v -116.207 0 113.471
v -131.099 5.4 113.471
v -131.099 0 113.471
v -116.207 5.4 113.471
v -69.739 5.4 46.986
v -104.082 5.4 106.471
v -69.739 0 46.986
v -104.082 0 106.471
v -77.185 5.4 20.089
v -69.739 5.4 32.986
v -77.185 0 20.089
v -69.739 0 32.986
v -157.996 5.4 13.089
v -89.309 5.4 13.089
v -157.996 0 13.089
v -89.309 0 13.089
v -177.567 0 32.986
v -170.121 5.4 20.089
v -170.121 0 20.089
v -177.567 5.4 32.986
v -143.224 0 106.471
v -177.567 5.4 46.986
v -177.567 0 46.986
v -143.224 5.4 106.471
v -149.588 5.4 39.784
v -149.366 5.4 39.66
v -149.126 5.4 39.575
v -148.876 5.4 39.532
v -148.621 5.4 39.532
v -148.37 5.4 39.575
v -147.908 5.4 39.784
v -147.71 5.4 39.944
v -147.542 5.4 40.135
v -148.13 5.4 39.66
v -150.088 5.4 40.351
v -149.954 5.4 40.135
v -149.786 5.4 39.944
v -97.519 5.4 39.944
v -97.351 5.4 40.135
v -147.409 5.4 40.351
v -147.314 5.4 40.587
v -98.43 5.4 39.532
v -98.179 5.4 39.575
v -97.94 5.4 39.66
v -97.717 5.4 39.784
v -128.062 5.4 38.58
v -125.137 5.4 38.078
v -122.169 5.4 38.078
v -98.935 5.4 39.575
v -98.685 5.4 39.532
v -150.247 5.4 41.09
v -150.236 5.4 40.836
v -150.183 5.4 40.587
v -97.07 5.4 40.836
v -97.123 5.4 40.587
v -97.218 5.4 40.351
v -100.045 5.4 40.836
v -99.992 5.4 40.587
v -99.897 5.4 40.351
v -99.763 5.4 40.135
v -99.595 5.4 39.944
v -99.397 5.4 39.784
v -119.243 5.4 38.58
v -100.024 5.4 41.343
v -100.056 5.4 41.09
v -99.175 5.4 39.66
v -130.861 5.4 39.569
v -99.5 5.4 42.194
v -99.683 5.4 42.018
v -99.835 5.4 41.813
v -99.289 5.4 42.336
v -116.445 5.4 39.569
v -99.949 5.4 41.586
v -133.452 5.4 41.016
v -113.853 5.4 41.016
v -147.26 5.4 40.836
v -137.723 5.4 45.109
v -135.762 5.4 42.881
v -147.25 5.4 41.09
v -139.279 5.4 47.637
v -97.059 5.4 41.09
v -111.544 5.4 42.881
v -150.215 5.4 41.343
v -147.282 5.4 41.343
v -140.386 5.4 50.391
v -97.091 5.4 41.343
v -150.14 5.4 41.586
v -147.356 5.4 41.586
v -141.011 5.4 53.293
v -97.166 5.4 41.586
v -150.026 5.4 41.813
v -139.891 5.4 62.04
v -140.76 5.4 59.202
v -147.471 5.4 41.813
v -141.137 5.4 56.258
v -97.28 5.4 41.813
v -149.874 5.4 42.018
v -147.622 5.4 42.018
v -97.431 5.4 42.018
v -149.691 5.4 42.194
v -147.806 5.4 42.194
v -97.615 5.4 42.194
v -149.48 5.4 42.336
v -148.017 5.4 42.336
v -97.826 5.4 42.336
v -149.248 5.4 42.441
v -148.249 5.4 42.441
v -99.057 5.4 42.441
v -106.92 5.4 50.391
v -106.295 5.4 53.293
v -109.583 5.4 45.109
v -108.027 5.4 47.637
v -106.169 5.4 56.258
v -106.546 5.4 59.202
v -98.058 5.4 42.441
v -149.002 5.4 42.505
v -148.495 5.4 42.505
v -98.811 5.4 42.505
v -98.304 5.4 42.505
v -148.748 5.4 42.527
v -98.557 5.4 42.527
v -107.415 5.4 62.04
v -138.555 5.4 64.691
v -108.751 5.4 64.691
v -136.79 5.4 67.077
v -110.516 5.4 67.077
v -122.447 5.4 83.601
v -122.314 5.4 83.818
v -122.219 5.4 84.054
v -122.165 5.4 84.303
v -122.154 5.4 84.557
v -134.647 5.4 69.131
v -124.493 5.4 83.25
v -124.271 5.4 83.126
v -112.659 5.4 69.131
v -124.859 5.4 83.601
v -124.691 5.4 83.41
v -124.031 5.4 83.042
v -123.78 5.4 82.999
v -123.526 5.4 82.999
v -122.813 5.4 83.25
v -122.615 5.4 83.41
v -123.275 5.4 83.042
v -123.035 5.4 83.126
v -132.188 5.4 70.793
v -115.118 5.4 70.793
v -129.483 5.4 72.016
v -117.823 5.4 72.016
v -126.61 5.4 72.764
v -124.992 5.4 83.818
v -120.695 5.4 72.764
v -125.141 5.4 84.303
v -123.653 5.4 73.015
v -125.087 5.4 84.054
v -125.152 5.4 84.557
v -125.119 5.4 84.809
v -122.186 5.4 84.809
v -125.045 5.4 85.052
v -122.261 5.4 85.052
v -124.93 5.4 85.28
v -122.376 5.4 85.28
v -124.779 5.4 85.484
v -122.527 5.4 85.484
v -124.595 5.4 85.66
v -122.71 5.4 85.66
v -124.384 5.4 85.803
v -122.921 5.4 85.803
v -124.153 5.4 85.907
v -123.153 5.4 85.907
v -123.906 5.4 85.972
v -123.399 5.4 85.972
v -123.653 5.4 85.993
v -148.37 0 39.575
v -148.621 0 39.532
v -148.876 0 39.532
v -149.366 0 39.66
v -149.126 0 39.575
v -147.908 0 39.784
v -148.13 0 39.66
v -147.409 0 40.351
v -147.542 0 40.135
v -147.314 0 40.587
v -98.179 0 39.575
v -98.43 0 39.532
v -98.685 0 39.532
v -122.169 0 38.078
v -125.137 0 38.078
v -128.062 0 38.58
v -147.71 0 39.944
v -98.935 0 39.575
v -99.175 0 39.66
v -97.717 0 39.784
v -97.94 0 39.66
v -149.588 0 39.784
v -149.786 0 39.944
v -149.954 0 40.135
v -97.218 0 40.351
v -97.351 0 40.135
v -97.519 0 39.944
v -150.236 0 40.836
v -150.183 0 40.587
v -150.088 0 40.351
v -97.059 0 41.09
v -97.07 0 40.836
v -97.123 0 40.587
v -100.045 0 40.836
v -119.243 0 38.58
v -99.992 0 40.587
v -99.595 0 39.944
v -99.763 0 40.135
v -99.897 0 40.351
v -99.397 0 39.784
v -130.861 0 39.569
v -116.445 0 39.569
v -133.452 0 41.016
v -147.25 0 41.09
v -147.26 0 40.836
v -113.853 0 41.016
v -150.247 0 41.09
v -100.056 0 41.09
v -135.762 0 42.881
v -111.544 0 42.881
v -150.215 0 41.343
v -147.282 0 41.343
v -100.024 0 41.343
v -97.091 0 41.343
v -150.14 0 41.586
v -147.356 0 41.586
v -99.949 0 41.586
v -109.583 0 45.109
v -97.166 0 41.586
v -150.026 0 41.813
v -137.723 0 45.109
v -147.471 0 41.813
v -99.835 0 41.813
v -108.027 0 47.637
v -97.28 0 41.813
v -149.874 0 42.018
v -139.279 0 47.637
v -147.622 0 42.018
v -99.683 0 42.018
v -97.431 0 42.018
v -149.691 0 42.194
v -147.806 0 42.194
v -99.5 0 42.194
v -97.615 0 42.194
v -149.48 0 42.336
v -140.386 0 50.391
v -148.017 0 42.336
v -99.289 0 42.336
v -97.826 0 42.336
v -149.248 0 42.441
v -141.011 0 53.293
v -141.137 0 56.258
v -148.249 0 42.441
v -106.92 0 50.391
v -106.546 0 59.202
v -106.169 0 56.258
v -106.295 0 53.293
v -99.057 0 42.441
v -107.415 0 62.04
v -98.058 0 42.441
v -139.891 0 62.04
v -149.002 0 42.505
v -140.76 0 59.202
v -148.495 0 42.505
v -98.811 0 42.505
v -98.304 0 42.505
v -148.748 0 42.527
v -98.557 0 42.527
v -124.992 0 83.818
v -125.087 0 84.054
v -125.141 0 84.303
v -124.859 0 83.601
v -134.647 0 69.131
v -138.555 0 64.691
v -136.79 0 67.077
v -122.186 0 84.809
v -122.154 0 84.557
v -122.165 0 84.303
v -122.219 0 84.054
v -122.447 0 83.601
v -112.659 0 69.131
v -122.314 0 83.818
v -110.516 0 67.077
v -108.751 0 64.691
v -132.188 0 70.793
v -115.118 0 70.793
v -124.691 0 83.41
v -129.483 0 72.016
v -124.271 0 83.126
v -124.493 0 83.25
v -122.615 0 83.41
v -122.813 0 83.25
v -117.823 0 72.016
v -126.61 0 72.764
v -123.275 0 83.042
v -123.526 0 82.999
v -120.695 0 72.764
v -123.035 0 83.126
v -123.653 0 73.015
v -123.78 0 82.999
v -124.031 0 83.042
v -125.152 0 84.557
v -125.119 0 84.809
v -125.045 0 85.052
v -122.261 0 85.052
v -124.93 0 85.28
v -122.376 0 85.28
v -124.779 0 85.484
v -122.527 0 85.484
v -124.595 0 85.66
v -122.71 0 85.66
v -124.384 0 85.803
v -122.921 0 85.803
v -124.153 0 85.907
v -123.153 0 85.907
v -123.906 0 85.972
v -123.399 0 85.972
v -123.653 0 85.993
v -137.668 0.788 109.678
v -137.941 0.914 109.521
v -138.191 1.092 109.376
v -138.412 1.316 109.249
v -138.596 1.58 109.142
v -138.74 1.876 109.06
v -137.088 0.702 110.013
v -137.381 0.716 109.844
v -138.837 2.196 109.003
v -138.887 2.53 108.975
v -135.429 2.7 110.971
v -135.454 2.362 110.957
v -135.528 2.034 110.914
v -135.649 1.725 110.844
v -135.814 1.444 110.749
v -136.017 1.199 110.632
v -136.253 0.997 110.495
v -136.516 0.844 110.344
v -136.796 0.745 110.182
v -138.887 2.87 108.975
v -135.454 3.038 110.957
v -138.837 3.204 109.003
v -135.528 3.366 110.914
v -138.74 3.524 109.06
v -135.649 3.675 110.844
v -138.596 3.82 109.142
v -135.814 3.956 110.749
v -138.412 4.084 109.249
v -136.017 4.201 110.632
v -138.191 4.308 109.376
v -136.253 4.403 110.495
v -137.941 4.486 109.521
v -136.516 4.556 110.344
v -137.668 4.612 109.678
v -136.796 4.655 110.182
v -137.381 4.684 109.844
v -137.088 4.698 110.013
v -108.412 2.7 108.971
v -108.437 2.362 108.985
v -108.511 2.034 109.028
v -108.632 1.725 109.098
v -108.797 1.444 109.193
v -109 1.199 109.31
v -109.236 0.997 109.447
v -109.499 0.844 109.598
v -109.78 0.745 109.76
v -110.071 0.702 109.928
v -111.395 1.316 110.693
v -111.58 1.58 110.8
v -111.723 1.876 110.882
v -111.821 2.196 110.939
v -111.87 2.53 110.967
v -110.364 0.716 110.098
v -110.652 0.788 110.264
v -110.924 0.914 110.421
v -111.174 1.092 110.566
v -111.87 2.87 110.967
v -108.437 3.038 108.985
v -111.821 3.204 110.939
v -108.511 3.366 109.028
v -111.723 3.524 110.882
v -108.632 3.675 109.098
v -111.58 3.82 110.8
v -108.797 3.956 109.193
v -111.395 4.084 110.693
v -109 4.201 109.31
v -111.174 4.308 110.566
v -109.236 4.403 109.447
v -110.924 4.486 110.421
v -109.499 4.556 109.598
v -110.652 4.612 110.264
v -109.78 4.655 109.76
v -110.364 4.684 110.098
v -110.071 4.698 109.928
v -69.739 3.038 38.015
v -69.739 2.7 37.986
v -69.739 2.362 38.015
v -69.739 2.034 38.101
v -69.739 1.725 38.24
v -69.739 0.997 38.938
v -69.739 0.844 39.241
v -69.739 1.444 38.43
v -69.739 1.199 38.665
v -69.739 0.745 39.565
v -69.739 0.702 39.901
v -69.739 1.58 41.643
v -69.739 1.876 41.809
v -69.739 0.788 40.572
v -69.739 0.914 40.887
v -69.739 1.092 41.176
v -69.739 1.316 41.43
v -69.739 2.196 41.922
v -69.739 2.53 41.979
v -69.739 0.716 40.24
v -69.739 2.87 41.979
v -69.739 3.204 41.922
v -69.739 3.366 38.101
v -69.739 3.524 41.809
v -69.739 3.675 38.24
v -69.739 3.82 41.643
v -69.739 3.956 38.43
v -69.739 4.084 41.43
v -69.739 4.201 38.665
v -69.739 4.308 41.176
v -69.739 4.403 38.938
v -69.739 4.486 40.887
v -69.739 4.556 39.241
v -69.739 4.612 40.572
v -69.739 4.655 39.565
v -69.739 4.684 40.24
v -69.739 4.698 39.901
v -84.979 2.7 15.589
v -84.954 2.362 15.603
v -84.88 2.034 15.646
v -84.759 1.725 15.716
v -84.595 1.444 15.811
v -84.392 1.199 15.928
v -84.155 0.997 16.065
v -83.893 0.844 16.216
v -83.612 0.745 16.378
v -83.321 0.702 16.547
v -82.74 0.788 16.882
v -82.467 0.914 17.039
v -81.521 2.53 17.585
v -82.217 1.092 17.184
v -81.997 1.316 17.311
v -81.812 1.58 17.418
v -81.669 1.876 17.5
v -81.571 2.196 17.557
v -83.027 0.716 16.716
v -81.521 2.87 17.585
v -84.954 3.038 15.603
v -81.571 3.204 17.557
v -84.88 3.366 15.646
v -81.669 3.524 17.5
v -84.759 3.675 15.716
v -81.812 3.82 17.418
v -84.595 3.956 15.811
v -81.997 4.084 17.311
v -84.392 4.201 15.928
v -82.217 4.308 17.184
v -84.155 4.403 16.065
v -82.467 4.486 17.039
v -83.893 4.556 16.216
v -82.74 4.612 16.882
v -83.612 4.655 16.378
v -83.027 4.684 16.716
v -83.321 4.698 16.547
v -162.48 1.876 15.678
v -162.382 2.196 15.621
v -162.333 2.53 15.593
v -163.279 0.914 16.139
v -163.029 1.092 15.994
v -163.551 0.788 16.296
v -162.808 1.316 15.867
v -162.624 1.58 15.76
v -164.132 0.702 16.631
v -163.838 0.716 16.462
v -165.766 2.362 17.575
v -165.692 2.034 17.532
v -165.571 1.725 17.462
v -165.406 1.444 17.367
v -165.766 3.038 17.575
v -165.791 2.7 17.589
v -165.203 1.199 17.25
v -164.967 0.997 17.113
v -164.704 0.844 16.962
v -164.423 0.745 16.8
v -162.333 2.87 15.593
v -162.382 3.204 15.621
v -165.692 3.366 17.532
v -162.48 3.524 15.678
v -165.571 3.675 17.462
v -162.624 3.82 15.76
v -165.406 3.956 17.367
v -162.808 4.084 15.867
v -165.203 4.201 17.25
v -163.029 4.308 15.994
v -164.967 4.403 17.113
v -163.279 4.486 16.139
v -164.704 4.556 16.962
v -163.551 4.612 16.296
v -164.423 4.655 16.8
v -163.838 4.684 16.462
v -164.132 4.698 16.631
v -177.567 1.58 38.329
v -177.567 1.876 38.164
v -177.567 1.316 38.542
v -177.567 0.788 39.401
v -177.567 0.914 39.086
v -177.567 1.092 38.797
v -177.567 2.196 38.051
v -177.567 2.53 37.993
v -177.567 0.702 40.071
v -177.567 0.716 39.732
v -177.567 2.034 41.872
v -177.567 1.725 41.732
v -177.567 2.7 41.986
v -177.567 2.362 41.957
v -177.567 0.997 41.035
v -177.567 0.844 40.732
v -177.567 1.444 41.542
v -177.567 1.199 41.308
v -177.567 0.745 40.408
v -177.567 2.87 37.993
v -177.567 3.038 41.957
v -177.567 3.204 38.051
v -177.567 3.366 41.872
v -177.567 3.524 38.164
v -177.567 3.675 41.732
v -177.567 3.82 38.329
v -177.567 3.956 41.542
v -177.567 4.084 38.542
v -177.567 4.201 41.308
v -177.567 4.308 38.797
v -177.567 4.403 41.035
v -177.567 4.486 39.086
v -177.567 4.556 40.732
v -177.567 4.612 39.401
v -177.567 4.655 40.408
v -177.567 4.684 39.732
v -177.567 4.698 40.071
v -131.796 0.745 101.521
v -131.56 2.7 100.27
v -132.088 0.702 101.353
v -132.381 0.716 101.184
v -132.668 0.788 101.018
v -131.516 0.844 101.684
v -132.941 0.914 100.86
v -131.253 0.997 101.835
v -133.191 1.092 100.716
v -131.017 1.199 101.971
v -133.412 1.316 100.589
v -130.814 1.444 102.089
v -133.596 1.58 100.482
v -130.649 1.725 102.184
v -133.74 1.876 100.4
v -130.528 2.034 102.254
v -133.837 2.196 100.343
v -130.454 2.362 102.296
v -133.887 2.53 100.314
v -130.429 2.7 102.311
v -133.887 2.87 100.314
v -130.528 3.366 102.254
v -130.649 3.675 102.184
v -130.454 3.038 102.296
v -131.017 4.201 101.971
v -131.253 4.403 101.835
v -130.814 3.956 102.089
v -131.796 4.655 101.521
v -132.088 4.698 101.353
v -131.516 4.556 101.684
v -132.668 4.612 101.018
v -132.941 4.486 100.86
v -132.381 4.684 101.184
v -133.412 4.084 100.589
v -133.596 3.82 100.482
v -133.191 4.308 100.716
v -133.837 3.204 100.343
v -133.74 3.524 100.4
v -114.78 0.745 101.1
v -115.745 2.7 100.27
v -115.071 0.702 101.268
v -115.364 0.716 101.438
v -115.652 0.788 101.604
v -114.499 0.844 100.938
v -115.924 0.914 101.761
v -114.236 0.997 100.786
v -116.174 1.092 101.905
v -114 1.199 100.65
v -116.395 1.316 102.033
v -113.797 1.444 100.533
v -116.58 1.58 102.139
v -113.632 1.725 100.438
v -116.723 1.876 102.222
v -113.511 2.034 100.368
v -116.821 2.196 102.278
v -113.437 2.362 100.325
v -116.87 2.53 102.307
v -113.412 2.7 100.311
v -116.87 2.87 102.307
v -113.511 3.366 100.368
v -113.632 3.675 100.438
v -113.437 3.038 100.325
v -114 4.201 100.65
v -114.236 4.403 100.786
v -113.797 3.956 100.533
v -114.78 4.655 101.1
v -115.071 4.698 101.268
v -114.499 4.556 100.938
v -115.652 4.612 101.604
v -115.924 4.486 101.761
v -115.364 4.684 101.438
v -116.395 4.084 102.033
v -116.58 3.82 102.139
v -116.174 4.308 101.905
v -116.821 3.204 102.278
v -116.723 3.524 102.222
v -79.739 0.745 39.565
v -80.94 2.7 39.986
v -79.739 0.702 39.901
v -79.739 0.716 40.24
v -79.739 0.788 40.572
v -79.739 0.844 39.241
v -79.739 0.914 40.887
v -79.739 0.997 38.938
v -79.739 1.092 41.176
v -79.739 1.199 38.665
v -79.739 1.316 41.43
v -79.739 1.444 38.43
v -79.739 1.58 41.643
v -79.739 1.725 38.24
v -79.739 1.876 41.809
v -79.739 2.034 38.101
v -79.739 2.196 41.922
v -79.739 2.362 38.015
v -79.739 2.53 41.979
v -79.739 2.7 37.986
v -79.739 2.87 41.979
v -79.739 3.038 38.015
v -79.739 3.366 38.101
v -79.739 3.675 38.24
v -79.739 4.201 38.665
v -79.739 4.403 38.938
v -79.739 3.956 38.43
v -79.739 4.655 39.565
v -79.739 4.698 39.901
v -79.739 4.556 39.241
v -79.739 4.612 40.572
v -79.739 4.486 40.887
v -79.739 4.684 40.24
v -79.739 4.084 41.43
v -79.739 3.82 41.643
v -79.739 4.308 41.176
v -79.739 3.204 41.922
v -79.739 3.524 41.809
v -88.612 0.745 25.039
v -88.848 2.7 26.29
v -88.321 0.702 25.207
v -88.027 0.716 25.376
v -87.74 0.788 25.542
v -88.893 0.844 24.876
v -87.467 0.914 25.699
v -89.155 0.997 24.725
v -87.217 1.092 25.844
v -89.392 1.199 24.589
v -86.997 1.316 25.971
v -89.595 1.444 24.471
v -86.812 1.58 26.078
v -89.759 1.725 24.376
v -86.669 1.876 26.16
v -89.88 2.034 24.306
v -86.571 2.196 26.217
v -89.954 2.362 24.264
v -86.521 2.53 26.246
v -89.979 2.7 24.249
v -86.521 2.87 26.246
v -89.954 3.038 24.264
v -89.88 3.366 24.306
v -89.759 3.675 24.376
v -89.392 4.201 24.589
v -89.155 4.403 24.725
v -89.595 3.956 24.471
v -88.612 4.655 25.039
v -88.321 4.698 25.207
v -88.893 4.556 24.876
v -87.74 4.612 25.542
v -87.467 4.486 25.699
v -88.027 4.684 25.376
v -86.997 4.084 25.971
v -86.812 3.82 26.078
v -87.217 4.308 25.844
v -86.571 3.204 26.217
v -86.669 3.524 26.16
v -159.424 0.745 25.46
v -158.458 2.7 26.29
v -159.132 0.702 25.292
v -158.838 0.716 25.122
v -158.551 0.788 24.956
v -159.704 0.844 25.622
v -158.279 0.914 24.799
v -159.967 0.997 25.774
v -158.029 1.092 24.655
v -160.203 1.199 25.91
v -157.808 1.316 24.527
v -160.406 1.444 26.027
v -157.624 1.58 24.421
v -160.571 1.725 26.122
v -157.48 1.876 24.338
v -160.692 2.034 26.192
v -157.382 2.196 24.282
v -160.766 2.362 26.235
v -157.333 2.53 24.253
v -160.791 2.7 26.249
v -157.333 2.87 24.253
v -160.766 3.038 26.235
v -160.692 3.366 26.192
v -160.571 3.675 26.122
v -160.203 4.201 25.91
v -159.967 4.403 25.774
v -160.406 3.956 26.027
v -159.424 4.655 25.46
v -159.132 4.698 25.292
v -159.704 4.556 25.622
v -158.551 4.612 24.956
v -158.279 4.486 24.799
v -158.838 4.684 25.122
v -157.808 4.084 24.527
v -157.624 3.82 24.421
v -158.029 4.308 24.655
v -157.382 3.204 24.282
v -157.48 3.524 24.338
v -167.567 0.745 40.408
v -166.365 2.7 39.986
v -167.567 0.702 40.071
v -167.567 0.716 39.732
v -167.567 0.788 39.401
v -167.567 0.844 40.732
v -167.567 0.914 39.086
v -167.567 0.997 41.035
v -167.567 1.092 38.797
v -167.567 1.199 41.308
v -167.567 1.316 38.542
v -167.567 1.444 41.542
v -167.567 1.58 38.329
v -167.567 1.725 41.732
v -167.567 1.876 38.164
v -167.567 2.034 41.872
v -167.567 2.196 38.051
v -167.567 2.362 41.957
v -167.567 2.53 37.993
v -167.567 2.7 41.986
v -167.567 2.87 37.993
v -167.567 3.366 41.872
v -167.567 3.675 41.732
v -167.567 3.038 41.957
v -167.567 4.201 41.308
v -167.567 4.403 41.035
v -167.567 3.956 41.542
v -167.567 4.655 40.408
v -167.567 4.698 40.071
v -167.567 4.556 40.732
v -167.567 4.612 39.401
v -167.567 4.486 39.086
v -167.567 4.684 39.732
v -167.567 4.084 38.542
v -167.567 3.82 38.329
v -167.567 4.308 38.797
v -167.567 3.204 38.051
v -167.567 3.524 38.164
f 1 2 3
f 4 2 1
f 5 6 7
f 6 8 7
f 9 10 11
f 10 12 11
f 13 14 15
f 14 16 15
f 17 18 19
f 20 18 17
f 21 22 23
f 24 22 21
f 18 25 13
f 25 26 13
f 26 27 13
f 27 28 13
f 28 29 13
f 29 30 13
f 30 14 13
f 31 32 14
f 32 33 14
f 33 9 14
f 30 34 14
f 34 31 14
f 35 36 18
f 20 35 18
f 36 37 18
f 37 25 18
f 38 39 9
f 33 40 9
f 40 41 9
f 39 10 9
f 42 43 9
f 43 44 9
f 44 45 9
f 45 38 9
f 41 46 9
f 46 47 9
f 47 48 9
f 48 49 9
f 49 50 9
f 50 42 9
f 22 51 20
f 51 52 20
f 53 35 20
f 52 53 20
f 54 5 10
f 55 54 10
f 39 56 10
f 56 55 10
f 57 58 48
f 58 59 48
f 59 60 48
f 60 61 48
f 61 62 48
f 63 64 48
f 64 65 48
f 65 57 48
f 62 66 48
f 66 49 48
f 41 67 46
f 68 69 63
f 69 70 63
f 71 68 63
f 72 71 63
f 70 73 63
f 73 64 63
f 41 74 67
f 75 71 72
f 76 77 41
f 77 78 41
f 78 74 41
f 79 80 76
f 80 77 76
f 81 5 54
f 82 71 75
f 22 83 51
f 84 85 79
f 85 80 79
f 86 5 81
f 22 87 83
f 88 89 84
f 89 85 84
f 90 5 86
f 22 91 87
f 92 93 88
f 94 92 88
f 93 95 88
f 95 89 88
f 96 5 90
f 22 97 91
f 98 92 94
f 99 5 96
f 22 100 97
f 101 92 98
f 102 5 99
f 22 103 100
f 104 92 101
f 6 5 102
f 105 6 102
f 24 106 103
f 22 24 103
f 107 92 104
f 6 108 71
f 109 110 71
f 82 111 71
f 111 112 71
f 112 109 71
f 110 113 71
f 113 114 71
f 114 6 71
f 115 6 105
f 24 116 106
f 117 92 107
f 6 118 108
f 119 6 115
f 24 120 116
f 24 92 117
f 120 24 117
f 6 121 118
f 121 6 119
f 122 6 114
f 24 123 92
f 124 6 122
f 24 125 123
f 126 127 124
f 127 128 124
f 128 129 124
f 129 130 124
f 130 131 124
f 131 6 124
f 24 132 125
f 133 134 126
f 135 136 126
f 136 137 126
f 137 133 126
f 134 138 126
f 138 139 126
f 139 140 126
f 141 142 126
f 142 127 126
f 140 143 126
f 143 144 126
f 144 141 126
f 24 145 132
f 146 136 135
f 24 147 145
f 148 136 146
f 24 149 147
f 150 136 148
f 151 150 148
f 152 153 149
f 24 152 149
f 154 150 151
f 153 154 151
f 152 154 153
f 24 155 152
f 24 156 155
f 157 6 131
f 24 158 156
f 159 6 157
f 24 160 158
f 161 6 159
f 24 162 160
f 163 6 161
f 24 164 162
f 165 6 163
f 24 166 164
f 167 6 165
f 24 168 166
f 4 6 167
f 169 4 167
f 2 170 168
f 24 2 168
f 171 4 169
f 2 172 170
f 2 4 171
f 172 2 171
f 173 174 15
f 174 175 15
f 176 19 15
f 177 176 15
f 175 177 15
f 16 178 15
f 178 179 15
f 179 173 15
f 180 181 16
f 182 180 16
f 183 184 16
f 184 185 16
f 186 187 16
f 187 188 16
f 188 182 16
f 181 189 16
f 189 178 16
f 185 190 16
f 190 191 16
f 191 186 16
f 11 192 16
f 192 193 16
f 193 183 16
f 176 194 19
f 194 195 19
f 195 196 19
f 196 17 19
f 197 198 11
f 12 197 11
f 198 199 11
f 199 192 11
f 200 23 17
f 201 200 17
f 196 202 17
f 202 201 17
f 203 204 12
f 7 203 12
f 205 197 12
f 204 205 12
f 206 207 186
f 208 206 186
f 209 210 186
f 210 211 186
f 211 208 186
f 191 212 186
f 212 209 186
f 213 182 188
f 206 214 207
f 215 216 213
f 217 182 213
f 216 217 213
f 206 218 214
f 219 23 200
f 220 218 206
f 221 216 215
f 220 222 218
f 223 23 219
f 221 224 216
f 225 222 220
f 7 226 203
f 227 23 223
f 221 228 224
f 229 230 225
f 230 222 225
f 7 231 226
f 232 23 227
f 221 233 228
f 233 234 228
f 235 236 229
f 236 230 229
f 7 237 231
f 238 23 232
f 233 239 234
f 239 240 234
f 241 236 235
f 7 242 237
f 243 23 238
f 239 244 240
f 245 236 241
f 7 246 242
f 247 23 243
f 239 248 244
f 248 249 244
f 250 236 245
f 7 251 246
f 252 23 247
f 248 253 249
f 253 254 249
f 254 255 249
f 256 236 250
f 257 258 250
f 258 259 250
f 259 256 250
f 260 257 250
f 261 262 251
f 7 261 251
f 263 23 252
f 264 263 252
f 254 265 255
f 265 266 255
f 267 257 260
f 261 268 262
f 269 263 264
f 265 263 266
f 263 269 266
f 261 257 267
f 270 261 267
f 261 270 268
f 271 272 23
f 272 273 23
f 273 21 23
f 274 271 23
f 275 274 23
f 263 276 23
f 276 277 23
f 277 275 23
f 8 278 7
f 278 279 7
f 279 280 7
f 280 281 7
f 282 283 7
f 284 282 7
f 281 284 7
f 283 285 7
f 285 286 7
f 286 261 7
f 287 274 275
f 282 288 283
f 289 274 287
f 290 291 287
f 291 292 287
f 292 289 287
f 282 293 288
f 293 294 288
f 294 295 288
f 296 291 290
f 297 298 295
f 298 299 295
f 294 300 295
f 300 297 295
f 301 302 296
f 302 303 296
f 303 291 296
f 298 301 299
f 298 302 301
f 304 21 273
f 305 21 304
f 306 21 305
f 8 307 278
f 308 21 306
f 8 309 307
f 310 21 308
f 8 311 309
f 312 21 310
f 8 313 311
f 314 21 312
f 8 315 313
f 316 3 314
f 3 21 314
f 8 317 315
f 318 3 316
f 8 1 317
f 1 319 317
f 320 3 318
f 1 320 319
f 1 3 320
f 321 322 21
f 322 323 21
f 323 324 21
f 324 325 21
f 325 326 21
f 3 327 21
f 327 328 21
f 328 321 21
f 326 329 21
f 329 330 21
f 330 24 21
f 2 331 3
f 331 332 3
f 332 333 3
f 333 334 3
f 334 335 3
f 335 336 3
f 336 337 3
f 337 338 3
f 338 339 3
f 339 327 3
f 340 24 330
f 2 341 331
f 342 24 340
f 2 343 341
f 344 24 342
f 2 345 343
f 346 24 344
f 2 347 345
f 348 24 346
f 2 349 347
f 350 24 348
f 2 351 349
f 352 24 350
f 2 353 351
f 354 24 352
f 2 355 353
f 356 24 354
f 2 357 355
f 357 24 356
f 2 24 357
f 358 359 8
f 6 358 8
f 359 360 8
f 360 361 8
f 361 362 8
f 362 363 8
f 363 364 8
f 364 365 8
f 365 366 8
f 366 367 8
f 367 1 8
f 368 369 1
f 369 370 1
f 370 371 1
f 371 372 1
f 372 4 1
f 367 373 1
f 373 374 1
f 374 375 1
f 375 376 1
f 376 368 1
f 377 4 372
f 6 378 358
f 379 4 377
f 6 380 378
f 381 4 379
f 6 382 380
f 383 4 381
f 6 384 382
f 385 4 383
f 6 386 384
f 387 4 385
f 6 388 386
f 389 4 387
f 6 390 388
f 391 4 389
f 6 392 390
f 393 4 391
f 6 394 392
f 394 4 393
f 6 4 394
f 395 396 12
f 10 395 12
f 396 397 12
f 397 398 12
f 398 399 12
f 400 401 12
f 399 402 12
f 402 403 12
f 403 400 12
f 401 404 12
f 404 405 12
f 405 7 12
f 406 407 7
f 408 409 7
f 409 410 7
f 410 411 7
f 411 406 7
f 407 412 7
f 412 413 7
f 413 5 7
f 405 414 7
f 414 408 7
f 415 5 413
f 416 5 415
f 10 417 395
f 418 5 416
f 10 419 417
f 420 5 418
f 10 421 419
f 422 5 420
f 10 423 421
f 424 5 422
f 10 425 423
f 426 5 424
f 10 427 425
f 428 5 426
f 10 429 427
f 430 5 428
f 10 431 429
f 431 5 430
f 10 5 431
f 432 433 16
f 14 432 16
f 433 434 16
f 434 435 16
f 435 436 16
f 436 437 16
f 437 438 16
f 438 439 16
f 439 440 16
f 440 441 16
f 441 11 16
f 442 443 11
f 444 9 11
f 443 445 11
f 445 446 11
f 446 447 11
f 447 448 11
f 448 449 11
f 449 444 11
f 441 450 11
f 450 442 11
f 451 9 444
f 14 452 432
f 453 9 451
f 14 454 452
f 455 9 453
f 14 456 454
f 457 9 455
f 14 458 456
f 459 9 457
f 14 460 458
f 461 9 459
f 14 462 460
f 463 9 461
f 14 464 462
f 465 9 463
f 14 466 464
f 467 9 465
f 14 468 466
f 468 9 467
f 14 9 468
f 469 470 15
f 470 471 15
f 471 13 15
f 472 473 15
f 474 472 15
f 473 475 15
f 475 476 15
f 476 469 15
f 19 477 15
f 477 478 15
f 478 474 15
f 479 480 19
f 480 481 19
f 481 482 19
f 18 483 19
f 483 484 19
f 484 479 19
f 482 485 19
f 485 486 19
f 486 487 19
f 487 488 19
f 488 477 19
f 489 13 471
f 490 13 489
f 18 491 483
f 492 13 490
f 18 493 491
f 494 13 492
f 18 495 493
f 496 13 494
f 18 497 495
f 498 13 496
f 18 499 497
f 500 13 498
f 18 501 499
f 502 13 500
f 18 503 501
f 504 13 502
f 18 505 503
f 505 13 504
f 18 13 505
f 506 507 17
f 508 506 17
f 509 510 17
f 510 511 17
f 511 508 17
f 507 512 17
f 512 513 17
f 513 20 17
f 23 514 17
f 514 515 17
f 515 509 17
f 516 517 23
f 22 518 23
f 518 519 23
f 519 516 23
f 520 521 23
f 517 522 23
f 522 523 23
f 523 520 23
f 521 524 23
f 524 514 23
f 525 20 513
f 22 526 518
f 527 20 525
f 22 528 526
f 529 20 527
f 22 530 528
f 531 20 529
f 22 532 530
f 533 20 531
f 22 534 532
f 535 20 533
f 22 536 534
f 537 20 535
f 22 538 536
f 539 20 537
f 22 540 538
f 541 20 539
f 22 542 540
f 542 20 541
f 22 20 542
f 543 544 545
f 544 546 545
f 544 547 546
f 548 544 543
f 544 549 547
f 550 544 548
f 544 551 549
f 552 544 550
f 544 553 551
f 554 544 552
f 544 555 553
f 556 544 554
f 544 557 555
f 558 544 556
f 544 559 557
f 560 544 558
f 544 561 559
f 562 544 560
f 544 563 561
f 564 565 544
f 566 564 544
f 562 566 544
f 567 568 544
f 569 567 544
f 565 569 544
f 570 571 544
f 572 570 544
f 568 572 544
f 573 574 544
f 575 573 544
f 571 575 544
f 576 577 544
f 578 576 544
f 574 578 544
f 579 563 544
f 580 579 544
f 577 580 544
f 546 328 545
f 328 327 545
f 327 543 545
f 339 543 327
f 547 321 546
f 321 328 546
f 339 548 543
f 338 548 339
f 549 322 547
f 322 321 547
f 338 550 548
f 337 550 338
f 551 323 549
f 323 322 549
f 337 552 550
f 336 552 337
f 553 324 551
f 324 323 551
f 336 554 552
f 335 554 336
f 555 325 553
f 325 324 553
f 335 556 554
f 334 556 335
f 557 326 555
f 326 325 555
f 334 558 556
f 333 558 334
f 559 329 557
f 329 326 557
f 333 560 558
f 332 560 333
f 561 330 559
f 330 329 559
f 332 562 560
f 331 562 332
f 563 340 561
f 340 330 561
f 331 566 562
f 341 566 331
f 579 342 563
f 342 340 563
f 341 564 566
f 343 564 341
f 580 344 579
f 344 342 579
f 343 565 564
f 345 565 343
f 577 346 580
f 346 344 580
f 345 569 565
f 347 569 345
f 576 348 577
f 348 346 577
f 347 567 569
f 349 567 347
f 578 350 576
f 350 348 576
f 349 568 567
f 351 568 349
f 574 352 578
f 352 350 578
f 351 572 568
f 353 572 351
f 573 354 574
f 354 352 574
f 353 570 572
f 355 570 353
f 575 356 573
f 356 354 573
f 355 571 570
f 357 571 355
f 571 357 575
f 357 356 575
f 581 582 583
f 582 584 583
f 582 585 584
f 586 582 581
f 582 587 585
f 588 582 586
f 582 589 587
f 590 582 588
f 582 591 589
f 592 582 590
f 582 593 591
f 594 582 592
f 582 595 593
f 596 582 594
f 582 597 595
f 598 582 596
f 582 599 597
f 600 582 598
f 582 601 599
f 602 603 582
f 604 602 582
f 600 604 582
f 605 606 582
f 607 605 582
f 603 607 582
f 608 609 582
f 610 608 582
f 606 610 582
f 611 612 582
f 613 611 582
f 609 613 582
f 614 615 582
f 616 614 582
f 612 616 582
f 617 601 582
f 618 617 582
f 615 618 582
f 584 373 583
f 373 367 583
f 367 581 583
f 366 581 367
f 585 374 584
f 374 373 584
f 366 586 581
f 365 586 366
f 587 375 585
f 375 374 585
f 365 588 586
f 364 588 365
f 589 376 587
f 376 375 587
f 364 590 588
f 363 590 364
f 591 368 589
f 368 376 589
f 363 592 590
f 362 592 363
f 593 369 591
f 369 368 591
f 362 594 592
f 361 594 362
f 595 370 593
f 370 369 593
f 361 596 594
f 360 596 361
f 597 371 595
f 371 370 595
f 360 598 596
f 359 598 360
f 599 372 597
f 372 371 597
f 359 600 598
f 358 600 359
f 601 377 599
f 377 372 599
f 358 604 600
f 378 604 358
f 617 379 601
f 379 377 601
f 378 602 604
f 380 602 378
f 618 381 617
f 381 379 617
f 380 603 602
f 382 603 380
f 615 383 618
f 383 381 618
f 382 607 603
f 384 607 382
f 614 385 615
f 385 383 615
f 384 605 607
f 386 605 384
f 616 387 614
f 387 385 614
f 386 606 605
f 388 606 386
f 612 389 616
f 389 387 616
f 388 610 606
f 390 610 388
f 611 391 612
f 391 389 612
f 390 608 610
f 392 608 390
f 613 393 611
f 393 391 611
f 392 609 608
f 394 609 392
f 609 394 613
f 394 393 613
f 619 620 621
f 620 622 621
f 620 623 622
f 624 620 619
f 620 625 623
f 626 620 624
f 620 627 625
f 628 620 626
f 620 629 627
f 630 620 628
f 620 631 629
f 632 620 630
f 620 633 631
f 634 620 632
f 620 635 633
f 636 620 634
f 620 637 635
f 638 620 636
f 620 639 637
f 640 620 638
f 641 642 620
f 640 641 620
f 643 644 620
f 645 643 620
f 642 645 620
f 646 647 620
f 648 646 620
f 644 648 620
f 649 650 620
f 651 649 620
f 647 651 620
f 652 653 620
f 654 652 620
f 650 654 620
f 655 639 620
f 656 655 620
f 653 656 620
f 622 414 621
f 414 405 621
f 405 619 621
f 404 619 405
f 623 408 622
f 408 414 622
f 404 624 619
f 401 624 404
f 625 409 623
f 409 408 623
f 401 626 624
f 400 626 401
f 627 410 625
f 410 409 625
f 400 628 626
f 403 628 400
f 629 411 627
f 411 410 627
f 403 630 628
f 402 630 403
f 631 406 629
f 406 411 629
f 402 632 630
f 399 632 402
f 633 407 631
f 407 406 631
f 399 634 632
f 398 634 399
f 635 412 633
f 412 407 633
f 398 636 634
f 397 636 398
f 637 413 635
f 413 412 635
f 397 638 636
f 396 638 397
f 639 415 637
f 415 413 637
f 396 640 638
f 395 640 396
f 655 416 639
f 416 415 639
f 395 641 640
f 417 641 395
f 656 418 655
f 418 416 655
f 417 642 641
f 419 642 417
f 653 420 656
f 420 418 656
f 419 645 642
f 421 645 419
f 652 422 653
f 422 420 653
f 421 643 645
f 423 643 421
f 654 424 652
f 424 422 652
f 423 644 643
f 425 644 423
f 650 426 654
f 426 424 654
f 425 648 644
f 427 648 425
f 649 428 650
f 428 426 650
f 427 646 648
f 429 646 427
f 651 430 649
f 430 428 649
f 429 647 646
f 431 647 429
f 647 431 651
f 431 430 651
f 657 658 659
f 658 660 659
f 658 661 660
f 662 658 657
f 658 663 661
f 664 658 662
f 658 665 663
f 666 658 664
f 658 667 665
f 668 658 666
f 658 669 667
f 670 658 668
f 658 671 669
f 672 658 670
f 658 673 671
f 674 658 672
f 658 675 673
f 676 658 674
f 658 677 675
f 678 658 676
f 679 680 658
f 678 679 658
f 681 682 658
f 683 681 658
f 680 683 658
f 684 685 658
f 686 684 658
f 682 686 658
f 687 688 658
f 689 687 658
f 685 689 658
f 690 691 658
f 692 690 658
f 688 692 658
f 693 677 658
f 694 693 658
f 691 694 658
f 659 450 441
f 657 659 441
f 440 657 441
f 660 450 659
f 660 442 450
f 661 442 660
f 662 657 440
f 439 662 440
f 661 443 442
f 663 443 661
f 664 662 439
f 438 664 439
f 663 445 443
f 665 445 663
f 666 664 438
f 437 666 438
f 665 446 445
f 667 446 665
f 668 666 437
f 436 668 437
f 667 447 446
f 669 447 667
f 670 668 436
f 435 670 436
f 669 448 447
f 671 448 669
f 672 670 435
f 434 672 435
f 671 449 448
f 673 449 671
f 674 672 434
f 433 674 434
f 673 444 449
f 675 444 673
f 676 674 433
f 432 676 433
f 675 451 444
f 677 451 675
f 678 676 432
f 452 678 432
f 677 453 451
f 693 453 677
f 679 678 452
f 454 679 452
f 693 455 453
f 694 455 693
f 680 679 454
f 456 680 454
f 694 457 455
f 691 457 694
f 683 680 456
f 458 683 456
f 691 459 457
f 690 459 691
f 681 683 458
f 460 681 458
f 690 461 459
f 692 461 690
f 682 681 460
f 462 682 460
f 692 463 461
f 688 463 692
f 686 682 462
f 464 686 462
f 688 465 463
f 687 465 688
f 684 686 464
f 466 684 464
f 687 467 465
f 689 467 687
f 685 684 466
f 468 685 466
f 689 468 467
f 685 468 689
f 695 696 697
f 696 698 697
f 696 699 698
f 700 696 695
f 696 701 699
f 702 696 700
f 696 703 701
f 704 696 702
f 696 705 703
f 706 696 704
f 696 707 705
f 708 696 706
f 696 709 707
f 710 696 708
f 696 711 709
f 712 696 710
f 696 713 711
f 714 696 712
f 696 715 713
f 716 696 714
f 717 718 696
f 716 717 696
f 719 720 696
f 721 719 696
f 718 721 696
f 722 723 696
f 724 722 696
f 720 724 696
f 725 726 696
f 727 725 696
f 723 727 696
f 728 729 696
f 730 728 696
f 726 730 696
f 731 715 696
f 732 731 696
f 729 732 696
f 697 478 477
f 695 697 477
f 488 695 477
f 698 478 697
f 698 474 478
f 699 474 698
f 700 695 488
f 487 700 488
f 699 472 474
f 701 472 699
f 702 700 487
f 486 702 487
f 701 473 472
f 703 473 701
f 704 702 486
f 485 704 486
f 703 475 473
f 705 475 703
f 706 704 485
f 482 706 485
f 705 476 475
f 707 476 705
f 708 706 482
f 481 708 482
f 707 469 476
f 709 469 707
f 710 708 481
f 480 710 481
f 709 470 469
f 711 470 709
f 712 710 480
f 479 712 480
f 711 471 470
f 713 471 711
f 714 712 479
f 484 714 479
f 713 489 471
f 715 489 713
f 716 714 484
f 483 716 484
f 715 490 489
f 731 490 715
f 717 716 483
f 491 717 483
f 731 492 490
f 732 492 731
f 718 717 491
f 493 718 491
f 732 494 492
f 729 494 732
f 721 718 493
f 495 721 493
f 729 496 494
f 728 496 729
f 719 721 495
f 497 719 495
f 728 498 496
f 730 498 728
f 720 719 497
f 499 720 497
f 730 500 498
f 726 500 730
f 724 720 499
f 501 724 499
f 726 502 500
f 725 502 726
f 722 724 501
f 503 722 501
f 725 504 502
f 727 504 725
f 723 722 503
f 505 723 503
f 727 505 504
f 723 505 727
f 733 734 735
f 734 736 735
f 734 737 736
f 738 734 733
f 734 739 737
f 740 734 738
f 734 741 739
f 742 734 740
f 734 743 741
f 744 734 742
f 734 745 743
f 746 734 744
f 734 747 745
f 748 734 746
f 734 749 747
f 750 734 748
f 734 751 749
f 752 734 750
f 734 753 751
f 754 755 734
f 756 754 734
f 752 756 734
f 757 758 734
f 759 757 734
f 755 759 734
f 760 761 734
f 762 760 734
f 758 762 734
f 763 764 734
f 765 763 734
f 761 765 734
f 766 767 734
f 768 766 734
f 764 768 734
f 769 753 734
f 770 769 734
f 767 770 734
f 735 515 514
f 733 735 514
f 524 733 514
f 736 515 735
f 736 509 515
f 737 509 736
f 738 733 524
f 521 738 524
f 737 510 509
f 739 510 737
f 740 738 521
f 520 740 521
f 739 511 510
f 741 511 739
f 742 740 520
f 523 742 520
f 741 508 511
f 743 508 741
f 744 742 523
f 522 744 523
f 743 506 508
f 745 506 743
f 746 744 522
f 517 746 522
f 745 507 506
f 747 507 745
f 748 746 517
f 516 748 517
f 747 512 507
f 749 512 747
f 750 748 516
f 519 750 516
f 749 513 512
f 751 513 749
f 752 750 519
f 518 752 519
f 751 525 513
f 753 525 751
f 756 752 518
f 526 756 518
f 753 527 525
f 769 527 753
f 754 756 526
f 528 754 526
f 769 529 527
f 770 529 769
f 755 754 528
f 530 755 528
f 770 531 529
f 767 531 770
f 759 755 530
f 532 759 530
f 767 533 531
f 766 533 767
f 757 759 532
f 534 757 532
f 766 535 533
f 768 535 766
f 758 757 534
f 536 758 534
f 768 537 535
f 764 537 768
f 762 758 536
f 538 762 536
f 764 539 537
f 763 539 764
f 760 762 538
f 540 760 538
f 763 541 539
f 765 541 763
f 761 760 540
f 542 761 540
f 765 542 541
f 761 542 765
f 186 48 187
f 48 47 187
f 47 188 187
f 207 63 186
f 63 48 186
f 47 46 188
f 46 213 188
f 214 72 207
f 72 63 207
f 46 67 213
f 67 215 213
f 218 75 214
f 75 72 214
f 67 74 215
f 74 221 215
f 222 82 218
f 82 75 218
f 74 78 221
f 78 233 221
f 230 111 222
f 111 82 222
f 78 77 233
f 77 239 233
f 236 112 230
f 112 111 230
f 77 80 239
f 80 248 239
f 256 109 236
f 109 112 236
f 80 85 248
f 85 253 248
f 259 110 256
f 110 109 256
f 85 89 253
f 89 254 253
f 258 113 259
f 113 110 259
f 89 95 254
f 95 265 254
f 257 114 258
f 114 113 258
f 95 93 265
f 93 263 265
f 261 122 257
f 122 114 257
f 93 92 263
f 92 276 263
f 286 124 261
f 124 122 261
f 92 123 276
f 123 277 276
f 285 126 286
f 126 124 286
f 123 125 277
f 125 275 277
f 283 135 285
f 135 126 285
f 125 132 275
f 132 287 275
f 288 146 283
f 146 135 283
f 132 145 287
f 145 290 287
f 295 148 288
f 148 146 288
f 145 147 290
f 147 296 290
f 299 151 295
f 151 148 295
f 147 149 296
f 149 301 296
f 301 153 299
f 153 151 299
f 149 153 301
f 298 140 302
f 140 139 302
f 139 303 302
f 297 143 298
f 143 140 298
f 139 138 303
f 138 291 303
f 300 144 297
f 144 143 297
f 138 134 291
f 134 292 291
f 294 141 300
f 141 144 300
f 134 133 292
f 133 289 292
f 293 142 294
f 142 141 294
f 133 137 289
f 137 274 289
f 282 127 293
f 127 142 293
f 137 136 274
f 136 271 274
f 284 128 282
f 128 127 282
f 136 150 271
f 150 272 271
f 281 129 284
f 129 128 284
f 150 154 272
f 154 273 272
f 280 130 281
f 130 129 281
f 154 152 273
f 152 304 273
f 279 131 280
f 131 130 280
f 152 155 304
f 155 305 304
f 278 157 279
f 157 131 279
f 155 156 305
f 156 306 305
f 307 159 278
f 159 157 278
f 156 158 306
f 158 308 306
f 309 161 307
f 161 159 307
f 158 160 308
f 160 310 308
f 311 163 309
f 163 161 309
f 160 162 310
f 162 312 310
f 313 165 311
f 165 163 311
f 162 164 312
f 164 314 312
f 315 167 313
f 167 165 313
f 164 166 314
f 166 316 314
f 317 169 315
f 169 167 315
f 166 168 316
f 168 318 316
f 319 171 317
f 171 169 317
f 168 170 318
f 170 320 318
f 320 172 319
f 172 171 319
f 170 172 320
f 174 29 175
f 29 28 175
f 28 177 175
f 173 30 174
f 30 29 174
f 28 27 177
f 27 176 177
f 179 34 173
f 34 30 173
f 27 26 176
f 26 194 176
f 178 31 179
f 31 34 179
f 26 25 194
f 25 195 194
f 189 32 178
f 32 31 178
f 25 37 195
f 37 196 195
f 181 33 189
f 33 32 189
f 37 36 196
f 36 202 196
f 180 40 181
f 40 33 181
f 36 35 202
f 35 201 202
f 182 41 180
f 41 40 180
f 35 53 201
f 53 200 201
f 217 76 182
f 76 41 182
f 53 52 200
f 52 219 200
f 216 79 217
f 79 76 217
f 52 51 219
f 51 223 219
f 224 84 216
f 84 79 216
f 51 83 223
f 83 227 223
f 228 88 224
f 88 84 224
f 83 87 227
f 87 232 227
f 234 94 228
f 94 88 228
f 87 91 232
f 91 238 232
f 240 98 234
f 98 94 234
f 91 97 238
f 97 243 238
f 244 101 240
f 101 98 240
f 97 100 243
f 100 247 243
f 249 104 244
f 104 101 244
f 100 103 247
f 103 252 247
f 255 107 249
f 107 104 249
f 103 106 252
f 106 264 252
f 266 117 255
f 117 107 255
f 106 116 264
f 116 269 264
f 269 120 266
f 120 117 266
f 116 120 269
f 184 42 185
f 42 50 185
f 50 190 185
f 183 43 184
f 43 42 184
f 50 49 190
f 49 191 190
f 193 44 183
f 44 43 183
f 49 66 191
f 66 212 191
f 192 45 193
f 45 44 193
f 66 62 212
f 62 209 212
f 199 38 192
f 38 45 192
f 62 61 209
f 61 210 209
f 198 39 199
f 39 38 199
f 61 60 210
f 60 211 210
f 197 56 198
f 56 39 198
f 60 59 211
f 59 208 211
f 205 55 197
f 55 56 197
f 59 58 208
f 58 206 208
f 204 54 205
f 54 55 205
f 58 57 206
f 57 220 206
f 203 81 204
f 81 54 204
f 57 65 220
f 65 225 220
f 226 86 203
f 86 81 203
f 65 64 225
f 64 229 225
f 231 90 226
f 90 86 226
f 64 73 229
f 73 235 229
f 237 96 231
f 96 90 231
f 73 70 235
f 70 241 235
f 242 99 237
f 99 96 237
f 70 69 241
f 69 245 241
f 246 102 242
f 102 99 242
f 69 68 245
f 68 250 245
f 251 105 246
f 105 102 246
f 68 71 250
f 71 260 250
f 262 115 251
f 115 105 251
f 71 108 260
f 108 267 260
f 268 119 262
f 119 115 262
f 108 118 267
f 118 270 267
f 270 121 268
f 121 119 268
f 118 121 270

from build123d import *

# Parameters (mm, degrees)
BOSS_EXTRUDE2_DEPTH       = 5.4
F_3_0MM_DOWEL_HOLE1_D     = 4
F_3_0MM_DOWEL_HOLE1_DEPTH = 10
F_3_0MM_DOWEL_HOLE1_TIP   = 1.201721238
F_3_0MM_DOWEL_HOLE2_D     = 4
F_3_0MM_DOWEL_HOLE2_DEPTH = 10
F_3_0MM_DOWEL_HOLE2_TIP   = 1.201721238
F_3_0MM_DOWEL_HOLE3_D     = 4
F_3_0MM_DOWEL_HOLE3_DEPTH = 10
F_3_0MM_DOWEL_HOLE3_TIP   = 1.201721238
F_3_0MM_DOWEL_HOLE4_D     = 4
F_3_0MM_DOWEL_HOLE4_DEPTH = 10
F_3_0MM_DOWEL_HOLE4_TIP   = 1.201721238
F_3_0MM_DOWEL_HOLE5_D     = 4
F_3_0MM_DOWEL_HOLE5_DEPTH = 10
F_3_0MM_DOWEL_HOLE5_TIP   = 1.201721238
F_3_0MM_DOWEL_HOLE6_D     = 4
F_3_0MM_DOWEL_HOLE6_DEPTH = 10
F_3_0MM_DOWEL_HOLE6_TIP   = 1.201721238
SKETCH23_R                = 17.5
CUT_EXTRUDE1_DEPTH        = 211.795738776
CUT_EXTRUDE2_DEPTH        = 211.795738776
CUT_EXTRUDE2_DEPTH_BACK   = 211.795738776
SKETCH24_R                = 1.5


with BuildPart() as part:
    # Sketch1 → Boss-Extrude2 (new body)
    with BuildSketch(Plane(origin=(0, 0, 0), x_dir=(1, 0, 0), z_dir=(0, 1, 0))):
        Polygon((-181.608413742, -39.986262339), (-139.182006871, -113.470954622), (-108.123721459, -113.470954622), (-65.697314588, -39.986262339), (-81.226457294, -13.088998174), (-166.079271036, -13.088998174), align=None)
    extrude(amount=BOSS_EXTRUDE2_DEPTH)

    # Chamfer3
    # the kernel refuses this chamfer: 14 mm, written as the material it takes off along each edge
    with BuildSketch(Plane(origin=(-139.182006871, -21.431130006, 113.470954622), x_dir=(-0.5280200004833012, 0, -0.8492319348032166), z_dir=(0, 1, 0))) as chamfer3_piece_1:
        with BuildLine():
            Line((8.572452002, 0), (-4.761795885, -7.128270007))
            Line((-4.761795885, -7.128270007), (-4.999580826, -6.980424406))
            ThreePointArc((-4.999580826, -6.980424406), (-2.499790413, -3.490212203), (-0.237784942, 0.1478456))
            Line((-0.237784942, 0.1478456), (0.009145575, 0.2798506))
            ThreePointArc((0.009145575, 0.2798506), (4.290798789, 0.1399253), (8.581597577, 0.2798506))
            Line((8.581597577, 0.2798506), (8.572452002, 0))
        make_face()
    extrude(amount=48.262260012, mode=Mode.SUBTRACT)

    # Chamfer4
    # the kernel refuses this chamfer: 14 mm, written as the material it takes off along each edge
    with BuildSketch(Plane(origin=(-108.123721459, -21.431130006, 113.470954622), x_dir=(0.5280200004833001, 0, -0.8492319348032171), z_dir=(0, 1, 0))) as chamfer4_piece_1:
        with BuildLine():
            Line((8.572452002, 0), (-4.761795885, 7.128270007))
            Line((-4.761795885, 7.128270007), (-4.999580826, 6.980424406))
            ThreePointArc((-4.999580826, 6.980424406), (-2.499790413, 3.490212203), (-0.237784942, -0.1478456))
            Line((-0.237784942, -0.1478456), (0.009145575, -0.2798506))
            ThreePointArc((0.009145575, -0.2798506), (4.290798789, -0.1399253), (8.581597577, -0.2798506))
            Line((8.581597577, -0.2798506), (8.572452002, 0))
        make_face()
    extrude(amount=48.262260012, mode=Mode.SUBTRACT)

    # Chamfer5
    # the kernel refuses this chamfer: 14 mm, written as the material it takes off along each edge
    with BuildSketch(Plane(origin=(-65.697314588, -21.431130006, 39.986262339), x_dir=(-0.47144642900294653, 0, -0.8818947015264179), z_dir=(0, 1, 0))) as chamfer5_piece_1:
        with BuildLine():
            Line((8.572452002, 0), (-4.761795885, 7.128270007))
            Line((-4.761795885, 7.128270007), (-4.999580826, 6.980424406))
            ThreePointArc((-4.999580826, 6.980424406), (-2.499790413, 3.490212203), (-0.237784942, -0.1478456))
            Line((-0.237784942, -0.1478456), (0.009145575, -0.2798506))
            ThreePointArc((0.009145575, -0.2798506), (4.290798789, -0.1399253), (8.581597577, -0.2798506))
            Line((8.581597577, -0.2798506), (8.572452002, 0))
        make_face()
    extrude(amount=48.262260012, mode=Mode.SUBTRACT)

    # Chamfer6
    # the kernel refuses this chamfer: 14 mm, written as the material it takes off along each edge
    with BuildSketch(Plane(origin=(-81.226457294, -21.431130006, 13.088998174), x_dir=(0.5280200004833007, 0, 0.8492319348032168), z_dir=(0, 1, 0))) as chamfer6_piece_1:
        with BuildLine():
            Line((8.572452002, 0), (-4.761795885, -7.128270007))
            Line((-4.761795885, -7.128270007), (-4.999580826, -6.980424406))
            ThreePointArc((-4.999580826, -6.980424406), (-2.499790413, -3.490212203), (-0.237784942, 0.1478456))
            Line((-0.237784942, 0.1478456), (0.009145575, 0.2798506))
            ThreePointArc((0.009145575, 0.2798506), (4.290798789, 0.1399253), (8.581597577, 0.2798506))
            Line((8.581597577, 0.2798506), (8.572452002, 0))
        make_face()
    extrude(amount=48.262260012, mode=Mode.SUBTRACT)

    # Chamfer7
    # the kernel refuses this chamfer: 14 mm, written as the material it takes off along each edge
    with BuildSketch(Plane(origin=(-166.079271036, -21.431130006, 13.088998174), x_dir=(-0.5280200004833, 0, 0.8492319348032173), z_dir=(0, 1, 0))) as chamfer7_piece_1:
        with BuildLine():
            Line((8.572452002, 0), (-4.761795885, 7.128270007))
            Line((-4.761795885, 7.128270007), (-4.999580826, 6.980424406))
            ThreePointArc((-4.999580826, 6.980424406), (-2.499790413, 3.490212203), (-0.237784942, -0.1478456))
            Line((-0.237784942, -0.1478456), (0.009145575, -0.2798506))
            ThreePointArc((0.009145575, -0.2798506), (4.290798789, -0.1399253), (8.581597577, -0.2798506))
            Line((8.581597577, -0.2798506), (8.572452002, 0))
        make_face()
    extrude(amount=48.262260012, mode=Mode.SUBTRACT)

    # Chamfer8
    # the kernel refuses this chamfer: 14 mm, written as the material it takes off along each edge
    with BuildSketch(Plane(origin=(-181.608413742, -21.431130006, 39.986262339), x_dir=(0.4714464290029468, 0, 0.8818947015264177), z_dir=(0, 1, 0))) as chamfer8_piece_1:
        with BuildLine():
            Line((8.572452002, 0), (-4.761795885, 7.128270007))
            Line((-4.761795885, 7.128270007), (-4.999580826, 6.980424406))
            ThreePointArc((-4.999580826, 6.980424406), (-2.499790413, 3.490212203), (-0.237784942, -0.1478456))
            Line((-0.237784942, -0.1478456), (0.009145575, -0.2798506))
            ThreePointArc((0.009145575, -0.2798506), (4.290798789, -0.1399253), (8.581597577, -0.2798506))
            Line((8.581597577, -0.2798506), (8.572452002, 0))
        make_face()
    extrude(amount=48.262260012, mode=Mode.SUBTRACT)

    # Ø3.0mm Dowel Hole1
    with Locations(Plane(origin=(-81.909140423, 0, 141.870792817), x_dir=(0.8660254037844395, 0, 0.49999999999999856), z_dir=(-0.49999999999999856, 0, 0.8660254037844395))):
        with Locations((-63.799676389, 2.7)):
            Hole(F_3_0MM_DOWEL_HOLE1_D / 2, depth=F_3_0MM_DOWEL_HOLE1_DEPTH)
            with Locations((0, 0, -(F_3_0MM_DOWEL_HOLE1_DEPTH + F_3_0MM_DOWEL_HOLE1_TIP / 2))):  # 118° drill point
                Cone(0, F_3_0MM_DOWEL_HOLE1_D / 2, F_3_0MM_DOWEL_HOLE1_TIP, mode=Mode.SUBTRACT)

    # Ø3.0mm Dowel Hole2
    with Locations(Plane(origin=(20.08270834, 0, 34.784271199), x_dir=(0.8660254037844377, 0, -0.5000000000000018), z_dir=(0.5000000000000018, 0, 0.8660254037844377))):
        with Locations((-150.373366846, 2.7)):
            Hole(F_3_0MM_DOWEL_HOLE2_D / 2, depth=F_3_0MM_DOWEL_HOLE2_DEPTH)
            with Locations((0, 0, -(F_3_0MM_DOWEL_HOLE2_DEPTH + F_3_0MM_DOWEL_HOLE2_TIP / 2))):  # 118° drill point
                Cone(0, F_3_0MM_DOWEL_HOLE2_D / 2, F_3_0MM_DOWEL_HOLE2_TIP, mode=Mode.SUBTRACT)

    # Ø3.0mm Dowel Hole3
    with Locations(Plane(origin=(-69.738766472, 0, 0), x_dir=(0, 0, -1), z_dir=(1, 0, 0))):
        with Locations((-39.986262339, 2.7)):
            Hole(F_3_0MM_DOWEL_HOLE3_D / 2, depth=F_3_0MM_DOWEL_HOLE3_DEPTH)
            with Locations((0, 0, -(F_3_0MM_DOWEL_HOLE3_DEPTH + F_3_0MM_DOWEL_HOLE3_TIP / 2))):  # 118° drill point
                Cone(0, F_3_0MM_DOWEL_HOLE3_D / 2, F_3_0MM_DOWEL_HOLE3_TIP, mode=Mode.SUBTRACT)

    # Ø3.0mm Dowel Hole4
    with Locations(Plane(origin=(-27.99504273, 0, 48.488836368), x_dir=(-0.8660254037844382, 0, -0.5000000000000009), z_dir=(0.5000000000000009, 0, -0.8660254037844382))):
        with Locations((63.799676389, 2.7)):
            Hole(F_3_0MM_DOWEL_HOLE4_D / 2, depth=F_3_0MM_DOWEL_HOLE4_DEPTH)
            with Locations((0, 0, -(F_3_0MM_DOWEL_HOLE4_DEPTH + F_3_0MM_DOWEL_HOLE4_TIP / 2))):  # 118° drill point
                Cone(0, F_3_0MM_DOWEL_HOLE4_D / 2, F_3_0MM_DOWEL_HOLE4_TIP, mode=Mode.SUBTRACT)

    # Ø3.0mm Dowel Hole5
    with Locations(Plane(origin=(-33.831389353, 0, -58.597685249), x_dir=(-0.8660254037844384, 0, 0.5000000000000004), z_dir=(-0.5000000000000004, 0, -0.8660254037844384))):
        with Locations((150.373366846, 2.7)):
            Hole(F_3_0MM_DOWEL_HOLE5_D / 2, depth=F_3_0MM_DOWEL_HOLE5_DEPTH)
            with Locations((0, 0, -(F_3_0MM_DOWEL_HOLE5_DEPTH + F_3_0MM_DOWEL_HOLE5_TIP / 2))):  # 118° drill point
                Cone(0, F_3_0MM_DOWEL_HOLE5_D / 2, F_3_0MM_DOWEL_HOLE5_TIP, mode=Mode.SUBTRACT)

    # Ø3.0mm Dowel Hole6
    with Locations(Plane.ZY.offset(177.566961858)):
        with Locations((39.986262339, 2.7)):
            Hole(F_3_0MM_DOWEL_HOLE6_D / 2, depth=F_3_0MM_DOWEL_HOLE6_DEPTH)
            with Locations((0, 0, -(F_3_0MM_DOWEL_HOLE6_DEPTH + F_3_0MM_DOWEL_HOLE6_TIP / 2))):  # 118° drill point
                Cone(0, F_3_0MM_DOWEL_HOLE6_D / 2, F_3_0MM_DOWEL_HOLE6_TIP, mode=Mode.SUBTRACT)

    # Sketch23 → Cut-Extrude1 (cut, through all)
    with BuildSketch(Plane(origin=(0, 5.4, 0), x_dir=(1, 0, 0), z_dir=(0, 1, 0))):
        with Locations(Location((-123.652864165, -55.515405045, 0), (0, 0, 270))):
            Circle(SKETCH23_R)
    extrude(amount=-CUT_EXTRUDE1_DEPTH, mode=Mode.SUBTRACT)

    # Sketch24 → Cut-Extrude2 (cut, two sides: drawn at the far end of the back side and taken through both)
    with BuildSketch(Plane(origin=(0, 5.4, 0), x_dir=(1, 0, 0), z_dir=(0, 1, 0)).offset(-CUT_EXTRUDE2_DEPTH_BACK)):
        with Locations(Location((-98.557375053, -41.02651765, 0), (0, 0, 270))):
            Circle(SKETCH24_R)
        with Locations(Location((-148.748353277, -41.02651765, 0), (0, 0, 270))):
            Circle(SKETCH24_R)
        with Locations(Location((-123.652864165, -84.493179833, 0), (0, 0, 270))):
            Circle(SKETCH24_R)
    extrude(amount=CUT_EXTRUDE2_DEPTH + CUT_EXTRUDE2_DEPTH_BACK, mode=Mode.SUBTRACT)


solid = part.part
